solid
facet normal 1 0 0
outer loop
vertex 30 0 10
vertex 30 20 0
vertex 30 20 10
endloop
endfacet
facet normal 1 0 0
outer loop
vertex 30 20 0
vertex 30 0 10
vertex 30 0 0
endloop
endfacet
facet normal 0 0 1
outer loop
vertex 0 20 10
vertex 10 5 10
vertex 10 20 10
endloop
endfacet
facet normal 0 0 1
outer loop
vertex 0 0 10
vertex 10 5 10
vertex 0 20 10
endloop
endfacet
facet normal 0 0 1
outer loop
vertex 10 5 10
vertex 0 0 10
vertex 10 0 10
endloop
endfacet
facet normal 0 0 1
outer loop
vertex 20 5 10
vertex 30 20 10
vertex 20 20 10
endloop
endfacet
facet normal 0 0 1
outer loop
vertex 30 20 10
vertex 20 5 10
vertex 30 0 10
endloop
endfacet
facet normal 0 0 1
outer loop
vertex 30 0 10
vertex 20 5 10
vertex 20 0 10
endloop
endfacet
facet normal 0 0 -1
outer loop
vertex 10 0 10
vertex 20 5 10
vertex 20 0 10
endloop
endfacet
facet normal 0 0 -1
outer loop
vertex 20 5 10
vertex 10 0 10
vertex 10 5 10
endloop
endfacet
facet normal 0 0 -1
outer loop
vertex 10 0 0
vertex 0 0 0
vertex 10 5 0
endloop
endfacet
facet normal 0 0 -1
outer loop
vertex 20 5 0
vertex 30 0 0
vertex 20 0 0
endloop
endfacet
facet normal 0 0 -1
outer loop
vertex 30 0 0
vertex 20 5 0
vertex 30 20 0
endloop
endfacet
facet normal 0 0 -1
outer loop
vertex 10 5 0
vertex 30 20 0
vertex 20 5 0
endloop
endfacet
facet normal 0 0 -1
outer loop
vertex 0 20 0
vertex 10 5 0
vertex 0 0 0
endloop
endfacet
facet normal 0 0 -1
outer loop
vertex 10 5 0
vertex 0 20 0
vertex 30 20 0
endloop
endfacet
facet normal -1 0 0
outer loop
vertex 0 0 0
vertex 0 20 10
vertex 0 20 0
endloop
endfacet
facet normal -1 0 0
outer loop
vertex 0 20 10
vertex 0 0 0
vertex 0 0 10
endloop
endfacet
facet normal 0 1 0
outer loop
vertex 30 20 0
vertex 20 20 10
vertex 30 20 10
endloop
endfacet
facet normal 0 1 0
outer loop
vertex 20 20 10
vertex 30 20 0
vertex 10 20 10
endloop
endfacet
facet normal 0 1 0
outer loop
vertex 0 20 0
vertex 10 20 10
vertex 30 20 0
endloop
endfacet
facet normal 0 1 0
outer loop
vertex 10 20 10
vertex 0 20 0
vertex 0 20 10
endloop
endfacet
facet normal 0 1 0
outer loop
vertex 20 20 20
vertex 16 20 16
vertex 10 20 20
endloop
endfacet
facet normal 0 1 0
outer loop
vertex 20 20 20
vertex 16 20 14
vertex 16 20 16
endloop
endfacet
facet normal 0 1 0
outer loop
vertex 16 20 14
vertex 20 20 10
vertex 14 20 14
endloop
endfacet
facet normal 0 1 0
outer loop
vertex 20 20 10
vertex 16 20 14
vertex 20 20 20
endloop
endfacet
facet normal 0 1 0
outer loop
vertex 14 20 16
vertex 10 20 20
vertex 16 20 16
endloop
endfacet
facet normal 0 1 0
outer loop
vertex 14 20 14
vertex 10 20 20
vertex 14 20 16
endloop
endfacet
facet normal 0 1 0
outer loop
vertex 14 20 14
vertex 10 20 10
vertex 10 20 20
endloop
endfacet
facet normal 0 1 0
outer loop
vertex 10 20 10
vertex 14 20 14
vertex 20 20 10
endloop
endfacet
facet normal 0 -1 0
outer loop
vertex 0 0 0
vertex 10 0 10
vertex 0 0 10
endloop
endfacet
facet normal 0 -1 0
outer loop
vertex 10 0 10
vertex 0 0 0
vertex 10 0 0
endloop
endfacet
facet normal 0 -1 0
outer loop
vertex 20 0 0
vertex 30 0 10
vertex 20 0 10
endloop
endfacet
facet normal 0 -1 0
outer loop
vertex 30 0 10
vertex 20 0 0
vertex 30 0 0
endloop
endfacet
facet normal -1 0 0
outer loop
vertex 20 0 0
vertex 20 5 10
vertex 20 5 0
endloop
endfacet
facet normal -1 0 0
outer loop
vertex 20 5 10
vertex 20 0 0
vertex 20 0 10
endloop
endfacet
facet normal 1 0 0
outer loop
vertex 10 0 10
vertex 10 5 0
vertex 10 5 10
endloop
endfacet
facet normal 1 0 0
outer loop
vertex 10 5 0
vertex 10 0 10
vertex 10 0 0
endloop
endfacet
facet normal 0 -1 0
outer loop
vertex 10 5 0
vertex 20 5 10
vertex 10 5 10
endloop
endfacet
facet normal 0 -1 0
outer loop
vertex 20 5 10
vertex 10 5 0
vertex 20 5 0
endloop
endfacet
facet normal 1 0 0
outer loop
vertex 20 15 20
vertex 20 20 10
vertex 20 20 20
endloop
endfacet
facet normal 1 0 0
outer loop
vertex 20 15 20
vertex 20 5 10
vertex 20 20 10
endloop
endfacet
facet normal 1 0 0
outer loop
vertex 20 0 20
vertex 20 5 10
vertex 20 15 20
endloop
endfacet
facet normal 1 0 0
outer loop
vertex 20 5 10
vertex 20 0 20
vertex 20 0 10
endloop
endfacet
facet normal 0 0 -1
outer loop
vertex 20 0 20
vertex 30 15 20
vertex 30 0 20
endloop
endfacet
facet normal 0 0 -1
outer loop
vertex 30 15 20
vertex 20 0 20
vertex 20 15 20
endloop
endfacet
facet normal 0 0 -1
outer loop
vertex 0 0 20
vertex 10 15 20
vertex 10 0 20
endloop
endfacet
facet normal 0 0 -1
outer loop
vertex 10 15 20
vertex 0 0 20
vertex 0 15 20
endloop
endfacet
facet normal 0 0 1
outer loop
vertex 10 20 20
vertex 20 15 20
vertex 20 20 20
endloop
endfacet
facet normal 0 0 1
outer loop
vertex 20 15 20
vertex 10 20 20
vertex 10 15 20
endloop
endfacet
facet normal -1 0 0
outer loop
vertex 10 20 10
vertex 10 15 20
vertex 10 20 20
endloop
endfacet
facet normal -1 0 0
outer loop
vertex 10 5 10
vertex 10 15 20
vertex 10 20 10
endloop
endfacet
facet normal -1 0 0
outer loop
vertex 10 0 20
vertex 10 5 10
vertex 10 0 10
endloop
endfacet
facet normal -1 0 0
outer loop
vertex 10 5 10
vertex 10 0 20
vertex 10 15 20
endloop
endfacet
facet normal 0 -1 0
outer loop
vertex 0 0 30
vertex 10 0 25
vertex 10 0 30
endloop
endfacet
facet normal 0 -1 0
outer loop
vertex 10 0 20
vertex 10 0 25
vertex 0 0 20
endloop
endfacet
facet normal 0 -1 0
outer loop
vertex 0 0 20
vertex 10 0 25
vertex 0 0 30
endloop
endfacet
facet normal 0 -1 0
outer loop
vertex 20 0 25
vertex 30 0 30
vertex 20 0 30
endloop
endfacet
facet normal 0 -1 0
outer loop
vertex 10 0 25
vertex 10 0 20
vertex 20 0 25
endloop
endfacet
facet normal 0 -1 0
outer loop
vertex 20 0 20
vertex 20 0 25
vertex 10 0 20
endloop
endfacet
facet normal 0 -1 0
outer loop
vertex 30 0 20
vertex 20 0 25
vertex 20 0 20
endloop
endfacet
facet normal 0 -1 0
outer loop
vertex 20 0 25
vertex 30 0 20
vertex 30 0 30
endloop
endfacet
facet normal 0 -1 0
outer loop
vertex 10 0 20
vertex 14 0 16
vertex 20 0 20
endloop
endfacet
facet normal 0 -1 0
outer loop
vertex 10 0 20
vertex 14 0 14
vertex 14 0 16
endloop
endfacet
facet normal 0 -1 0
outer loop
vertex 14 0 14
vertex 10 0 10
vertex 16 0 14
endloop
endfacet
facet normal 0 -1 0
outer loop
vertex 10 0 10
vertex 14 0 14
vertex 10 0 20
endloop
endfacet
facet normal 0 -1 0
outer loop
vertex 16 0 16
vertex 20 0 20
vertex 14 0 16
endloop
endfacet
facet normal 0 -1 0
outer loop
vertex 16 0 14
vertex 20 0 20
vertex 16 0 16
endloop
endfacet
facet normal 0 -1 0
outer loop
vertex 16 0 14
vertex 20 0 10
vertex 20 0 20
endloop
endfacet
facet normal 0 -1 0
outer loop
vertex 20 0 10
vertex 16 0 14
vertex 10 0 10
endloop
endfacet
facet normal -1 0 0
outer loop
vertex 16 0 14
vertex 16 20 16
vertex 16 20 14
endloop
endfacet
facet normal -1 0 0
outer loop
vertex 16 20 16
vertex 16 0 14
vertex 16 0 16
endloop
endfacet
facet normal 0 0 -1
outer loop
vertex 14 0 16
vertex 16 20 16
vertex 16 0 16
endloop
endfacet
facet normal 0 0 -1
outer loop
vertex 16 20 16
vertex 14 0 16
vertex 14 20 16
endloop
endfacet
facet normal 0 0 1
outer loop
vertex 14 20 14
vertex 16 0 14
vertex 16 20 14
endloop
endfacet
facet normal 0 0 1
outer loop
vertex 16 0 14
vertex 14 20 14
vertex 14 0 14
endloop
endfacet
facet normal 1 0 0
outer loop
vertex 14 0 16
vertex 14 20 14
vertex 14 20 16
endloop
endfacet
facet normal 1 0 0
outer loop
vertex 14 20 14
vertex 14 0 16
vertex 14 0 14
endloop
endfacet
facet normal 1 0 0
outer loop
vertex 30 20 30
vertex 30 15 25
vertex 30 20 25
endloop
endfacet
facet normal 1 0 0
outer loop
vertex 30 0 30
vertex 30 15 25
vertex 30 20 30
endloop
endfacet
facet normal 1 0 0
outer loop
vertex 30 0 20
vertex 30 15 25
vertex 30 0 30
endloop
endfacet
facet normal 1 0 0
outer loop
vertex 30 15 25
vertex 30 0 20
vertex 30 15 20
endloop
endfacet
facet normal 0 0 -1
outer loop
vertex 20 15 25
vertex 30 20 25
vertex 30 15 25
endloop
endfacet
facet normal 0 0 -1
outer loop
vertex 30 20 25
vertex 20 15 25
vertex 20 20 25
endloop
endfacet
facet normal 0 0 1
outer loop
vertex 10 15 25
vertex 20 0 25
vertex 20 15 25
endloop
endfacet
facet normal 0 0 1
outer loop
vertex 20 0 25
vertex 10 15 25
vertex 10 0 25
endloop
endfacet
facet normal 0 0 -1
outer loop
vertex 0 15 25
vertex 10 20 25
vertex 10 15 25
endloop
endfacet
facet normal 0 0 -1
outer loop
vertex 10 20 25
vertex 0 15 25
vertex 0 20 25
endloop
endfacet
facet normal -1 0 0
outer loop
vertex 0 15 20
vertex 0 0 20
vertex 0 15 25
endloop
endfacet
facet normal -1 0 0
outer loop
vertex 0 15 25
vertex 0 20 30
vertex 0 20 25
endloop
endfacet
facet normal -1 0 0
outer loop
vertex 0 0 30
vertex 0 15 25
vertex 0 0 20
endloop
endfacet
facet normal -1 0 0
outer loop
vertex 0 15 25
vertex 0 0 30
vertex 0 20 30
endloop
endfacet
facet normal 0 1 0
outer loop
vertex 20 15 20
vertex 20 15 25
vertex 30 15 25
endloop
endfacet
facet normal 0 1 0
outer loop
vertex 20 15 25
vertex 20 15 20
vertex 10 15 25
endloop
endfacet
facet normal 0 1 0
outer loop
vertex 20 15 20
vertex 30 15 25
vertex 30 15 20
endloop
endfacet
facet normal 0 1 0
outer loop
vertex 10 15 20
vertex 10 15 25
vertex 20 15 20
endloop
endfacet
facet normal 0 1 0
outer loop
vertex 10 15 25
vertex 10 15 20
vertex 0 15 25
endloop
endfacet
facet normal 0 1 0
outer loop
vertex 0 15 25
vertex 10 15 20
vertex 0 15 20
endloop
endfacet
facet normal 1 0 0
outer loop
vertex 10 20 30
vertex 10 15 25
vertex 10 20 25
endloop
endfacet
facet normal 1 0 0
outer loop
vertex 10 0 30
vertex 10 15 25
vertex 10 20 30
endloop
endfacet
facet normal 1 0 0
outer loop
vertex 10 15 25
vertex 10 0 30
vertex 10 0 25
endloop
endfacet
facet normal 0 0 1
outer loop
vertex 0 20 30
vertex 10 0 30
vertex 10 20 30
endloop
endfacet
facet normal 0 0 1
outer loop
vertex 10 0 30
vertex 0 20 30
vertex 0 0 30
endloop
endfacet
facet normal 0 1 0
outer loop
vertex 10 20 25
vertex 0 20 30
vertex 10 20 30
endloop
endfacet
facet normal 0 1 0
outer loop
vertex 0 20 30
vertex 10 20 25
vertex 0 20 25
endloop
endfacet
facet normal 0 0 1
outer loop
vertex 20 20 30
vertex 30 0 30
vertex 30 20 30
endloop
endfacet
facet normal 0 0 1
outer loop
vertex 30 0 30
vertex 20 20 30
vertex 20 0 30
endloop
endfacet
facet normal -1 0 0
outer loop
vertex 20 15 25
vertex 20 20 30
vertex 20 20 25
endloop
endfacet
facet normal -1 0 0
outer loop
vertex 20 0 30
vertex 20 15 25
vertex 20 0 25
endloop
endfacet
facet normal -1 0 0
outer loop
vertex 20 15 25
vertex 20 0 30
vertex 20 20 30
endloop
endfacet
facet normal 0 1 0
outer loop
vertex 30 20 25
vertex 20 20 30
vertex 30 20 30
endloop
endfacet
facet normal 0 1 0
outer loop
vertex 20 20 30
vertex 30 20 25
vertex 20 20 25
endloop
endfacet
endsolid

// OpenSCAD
// Base block
module base_block() {
    difference() {
        cube([30, 20, 10], center = false); // Main block
        translate([10, 0, 0])
            cube([10, 5, 10], center = false); // Adjusted vertical slot
    }
}

// Forked arm
module forked_arm() {
    union() {
        // Base of the U-shape
        cube([30, 15, 5], center = false); // Reduced thickness of the base
        // Left prong
        translate([0, 0, 5])
            cube([10, 20, 5], center = false); // Extended prong length
        // Right prong
        translate([20, 0, 5])
            cube([10, 20, 5], center = false); // Extended prong length
    }
}

// Connector slot
module connector_slot() {
    difference() {
        cube([10, 20, 10], center = false); // Main block
        translate([4, 0, 4])
            cube([2, 20, 2], center = false); // Narrowed slot
    }
}

// Assembly
module assembly() {
    // Layer 3: Base block
    base_block();

    // Layer 2: Connector slot
    translate([10, 0, 10])
        connector_slot();

    // Layer 1: Forked arm
    translate([0, 0, 20])
        forked_arm();
}

// Render the assembly
assembly();
